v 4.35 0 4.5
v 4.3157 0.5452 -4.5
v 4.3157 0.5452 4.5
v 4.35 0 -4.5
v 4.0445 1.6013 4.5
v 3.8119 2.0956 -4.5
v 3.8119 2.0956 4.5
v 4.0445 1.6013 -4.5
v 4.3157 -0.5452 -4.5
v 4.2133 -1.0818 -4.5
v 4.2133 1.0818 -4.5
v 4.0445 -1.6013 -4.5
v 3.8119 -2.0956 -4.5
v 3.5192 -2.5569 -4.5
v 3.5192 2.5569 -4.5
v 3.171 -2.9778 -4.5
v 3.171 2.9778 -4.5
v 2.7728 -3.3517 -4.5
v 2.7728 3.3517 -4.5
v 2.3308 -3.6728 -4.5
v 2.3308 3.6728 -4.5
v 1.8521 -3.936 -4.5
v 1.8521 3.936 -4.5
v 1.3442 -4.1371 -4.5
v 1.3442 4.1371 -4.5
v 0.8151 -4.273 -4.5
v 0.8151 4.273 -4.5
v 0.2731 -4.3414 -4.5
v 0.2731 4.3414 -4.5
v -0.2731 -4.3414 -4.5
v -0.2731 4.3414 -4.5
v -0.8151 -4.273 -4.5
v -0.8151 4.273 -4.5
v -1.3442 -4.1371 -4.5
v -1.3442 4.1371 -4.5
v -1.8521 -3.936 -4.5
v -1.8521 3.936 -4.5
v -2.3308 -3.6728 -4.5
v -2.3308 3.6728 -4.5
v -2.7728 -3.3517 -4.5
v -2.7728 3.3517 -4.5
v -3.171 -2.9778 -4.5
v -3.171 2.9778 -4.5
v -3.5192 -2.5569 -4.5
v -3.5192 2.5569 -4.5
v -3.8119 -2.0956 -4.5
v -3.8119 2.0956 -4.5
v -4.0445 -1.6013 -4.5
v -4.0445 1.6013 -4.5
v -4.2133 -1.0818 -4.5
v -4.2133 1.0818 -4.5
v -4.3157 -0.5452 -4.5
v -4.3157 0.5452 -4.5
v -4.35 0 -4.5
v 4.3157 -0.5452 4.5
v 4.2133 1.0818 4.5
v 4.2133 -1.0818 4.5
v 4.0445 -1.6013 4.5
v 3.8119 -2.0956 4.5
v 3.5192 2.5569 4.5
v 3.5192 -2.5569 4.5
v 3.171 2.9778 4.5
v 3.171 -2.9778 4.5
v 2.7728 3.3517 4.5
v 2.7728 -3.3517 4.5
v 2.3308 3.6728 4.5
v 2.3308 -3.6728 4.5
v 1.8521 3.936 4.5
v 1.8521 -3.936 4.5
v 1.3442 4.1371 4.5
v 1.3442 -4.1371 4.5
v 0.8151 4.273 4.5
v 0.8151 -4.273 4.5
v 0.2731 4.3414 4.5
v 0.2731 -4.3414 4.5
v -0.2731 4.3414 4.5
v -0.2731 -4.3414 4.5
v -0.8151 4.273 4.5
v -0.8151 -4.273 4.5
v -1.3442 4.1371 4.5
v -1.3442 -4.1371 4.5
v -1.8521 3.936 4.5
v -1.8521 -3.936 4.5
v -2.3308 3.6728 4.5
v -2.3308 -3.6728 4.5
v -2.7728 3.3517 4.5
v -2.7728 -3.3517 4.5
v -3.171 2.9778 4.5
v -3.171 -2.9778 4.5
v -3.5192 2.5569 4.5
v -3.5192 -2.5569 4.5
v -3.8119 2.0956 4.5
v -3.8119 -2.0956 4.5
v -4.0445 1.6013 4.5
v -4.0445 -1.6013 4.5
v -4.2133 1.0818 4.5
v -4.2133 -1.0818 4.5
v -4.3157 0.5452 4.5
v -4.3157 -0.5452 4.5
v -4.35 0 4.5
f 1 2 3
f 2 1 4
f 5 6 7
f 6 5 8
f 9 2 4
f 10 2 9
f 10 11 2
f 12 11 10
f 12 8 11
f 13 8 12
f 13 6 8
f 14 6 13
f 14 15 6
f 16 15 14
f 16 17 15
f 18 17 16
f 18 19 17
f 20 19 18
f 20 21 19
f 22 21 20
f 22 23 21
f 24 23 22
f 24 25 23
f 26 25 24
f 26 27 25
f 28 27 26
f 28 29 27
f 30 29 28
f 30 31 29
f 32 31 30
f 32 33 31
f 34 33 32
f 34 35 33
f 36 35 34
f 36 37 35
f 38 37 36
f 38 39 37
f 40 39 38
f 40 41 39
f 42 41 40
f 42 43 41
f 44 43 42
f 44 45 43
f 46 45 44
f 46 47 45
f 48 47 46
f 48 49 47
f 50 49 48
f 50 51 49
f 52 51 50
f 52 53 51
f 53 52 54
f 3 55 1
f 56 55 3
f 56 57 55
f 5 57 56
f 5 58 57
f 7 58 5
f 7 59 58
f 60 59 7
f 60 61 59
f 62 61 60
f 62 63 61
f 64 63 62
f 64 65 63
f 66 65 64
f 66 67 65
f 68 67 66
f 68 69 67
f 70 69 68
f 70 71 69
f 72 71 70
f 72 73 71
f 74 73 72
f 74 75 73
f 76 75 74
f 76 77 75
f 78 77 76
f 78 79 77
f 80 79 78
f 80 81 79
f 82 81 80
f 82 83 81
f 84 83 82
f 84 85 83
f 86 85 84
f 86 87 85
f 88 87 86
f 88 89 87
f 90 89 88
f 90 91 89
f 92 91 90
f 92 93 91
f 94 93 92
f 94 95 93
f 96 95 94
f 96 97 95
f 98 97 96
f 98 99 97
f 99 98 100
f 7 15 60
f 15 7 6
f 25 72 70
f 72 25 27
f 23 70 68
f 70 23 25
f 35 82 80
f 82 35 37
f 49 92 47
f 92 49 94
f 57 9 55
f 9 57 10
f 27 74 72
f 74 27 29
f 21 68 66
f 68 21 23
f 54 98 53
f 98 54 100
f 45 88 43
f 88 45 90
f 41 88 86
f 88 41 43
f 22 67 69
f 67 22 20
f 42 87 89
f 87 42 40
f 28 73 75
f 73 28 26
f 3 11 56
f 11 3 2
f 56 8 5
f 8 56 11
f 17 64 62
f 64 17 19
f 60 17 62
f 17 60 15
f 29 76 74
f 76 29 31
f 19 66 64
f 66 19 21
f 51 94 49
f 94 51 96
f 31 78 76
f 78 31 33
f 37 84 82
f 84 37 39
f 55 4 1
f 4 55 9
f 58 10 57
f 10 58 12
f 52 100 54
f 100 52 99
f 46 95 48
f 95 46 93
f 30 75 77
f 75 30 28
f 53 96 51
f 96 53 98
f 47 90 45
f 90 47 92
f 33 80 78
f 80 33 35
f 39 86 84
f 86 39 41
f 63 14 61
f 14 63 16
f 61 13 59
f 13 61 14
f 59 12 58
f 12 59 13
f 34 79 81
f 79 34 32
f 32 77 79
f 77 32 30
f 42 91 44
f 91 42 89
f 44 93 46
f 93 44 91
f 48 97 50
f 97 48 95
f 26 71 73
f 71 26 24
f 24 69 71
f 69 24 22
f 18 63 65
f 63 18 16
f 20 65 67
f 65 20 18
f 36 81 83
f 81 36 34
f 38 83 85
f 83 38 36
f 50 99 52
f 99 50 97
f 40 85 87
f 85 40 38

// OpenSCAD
$fn = 50;


difference() {
	union() {
		translate(v = [0, 0, -4.5000000000]) {
			cylinder(h = 9, r = 4.3500000000);
		}
	}
	union() {
		translate(v = [0, 0, -100.0000000000]) {
			cylinder(h = 200, r = 0);
		}
	}
}
